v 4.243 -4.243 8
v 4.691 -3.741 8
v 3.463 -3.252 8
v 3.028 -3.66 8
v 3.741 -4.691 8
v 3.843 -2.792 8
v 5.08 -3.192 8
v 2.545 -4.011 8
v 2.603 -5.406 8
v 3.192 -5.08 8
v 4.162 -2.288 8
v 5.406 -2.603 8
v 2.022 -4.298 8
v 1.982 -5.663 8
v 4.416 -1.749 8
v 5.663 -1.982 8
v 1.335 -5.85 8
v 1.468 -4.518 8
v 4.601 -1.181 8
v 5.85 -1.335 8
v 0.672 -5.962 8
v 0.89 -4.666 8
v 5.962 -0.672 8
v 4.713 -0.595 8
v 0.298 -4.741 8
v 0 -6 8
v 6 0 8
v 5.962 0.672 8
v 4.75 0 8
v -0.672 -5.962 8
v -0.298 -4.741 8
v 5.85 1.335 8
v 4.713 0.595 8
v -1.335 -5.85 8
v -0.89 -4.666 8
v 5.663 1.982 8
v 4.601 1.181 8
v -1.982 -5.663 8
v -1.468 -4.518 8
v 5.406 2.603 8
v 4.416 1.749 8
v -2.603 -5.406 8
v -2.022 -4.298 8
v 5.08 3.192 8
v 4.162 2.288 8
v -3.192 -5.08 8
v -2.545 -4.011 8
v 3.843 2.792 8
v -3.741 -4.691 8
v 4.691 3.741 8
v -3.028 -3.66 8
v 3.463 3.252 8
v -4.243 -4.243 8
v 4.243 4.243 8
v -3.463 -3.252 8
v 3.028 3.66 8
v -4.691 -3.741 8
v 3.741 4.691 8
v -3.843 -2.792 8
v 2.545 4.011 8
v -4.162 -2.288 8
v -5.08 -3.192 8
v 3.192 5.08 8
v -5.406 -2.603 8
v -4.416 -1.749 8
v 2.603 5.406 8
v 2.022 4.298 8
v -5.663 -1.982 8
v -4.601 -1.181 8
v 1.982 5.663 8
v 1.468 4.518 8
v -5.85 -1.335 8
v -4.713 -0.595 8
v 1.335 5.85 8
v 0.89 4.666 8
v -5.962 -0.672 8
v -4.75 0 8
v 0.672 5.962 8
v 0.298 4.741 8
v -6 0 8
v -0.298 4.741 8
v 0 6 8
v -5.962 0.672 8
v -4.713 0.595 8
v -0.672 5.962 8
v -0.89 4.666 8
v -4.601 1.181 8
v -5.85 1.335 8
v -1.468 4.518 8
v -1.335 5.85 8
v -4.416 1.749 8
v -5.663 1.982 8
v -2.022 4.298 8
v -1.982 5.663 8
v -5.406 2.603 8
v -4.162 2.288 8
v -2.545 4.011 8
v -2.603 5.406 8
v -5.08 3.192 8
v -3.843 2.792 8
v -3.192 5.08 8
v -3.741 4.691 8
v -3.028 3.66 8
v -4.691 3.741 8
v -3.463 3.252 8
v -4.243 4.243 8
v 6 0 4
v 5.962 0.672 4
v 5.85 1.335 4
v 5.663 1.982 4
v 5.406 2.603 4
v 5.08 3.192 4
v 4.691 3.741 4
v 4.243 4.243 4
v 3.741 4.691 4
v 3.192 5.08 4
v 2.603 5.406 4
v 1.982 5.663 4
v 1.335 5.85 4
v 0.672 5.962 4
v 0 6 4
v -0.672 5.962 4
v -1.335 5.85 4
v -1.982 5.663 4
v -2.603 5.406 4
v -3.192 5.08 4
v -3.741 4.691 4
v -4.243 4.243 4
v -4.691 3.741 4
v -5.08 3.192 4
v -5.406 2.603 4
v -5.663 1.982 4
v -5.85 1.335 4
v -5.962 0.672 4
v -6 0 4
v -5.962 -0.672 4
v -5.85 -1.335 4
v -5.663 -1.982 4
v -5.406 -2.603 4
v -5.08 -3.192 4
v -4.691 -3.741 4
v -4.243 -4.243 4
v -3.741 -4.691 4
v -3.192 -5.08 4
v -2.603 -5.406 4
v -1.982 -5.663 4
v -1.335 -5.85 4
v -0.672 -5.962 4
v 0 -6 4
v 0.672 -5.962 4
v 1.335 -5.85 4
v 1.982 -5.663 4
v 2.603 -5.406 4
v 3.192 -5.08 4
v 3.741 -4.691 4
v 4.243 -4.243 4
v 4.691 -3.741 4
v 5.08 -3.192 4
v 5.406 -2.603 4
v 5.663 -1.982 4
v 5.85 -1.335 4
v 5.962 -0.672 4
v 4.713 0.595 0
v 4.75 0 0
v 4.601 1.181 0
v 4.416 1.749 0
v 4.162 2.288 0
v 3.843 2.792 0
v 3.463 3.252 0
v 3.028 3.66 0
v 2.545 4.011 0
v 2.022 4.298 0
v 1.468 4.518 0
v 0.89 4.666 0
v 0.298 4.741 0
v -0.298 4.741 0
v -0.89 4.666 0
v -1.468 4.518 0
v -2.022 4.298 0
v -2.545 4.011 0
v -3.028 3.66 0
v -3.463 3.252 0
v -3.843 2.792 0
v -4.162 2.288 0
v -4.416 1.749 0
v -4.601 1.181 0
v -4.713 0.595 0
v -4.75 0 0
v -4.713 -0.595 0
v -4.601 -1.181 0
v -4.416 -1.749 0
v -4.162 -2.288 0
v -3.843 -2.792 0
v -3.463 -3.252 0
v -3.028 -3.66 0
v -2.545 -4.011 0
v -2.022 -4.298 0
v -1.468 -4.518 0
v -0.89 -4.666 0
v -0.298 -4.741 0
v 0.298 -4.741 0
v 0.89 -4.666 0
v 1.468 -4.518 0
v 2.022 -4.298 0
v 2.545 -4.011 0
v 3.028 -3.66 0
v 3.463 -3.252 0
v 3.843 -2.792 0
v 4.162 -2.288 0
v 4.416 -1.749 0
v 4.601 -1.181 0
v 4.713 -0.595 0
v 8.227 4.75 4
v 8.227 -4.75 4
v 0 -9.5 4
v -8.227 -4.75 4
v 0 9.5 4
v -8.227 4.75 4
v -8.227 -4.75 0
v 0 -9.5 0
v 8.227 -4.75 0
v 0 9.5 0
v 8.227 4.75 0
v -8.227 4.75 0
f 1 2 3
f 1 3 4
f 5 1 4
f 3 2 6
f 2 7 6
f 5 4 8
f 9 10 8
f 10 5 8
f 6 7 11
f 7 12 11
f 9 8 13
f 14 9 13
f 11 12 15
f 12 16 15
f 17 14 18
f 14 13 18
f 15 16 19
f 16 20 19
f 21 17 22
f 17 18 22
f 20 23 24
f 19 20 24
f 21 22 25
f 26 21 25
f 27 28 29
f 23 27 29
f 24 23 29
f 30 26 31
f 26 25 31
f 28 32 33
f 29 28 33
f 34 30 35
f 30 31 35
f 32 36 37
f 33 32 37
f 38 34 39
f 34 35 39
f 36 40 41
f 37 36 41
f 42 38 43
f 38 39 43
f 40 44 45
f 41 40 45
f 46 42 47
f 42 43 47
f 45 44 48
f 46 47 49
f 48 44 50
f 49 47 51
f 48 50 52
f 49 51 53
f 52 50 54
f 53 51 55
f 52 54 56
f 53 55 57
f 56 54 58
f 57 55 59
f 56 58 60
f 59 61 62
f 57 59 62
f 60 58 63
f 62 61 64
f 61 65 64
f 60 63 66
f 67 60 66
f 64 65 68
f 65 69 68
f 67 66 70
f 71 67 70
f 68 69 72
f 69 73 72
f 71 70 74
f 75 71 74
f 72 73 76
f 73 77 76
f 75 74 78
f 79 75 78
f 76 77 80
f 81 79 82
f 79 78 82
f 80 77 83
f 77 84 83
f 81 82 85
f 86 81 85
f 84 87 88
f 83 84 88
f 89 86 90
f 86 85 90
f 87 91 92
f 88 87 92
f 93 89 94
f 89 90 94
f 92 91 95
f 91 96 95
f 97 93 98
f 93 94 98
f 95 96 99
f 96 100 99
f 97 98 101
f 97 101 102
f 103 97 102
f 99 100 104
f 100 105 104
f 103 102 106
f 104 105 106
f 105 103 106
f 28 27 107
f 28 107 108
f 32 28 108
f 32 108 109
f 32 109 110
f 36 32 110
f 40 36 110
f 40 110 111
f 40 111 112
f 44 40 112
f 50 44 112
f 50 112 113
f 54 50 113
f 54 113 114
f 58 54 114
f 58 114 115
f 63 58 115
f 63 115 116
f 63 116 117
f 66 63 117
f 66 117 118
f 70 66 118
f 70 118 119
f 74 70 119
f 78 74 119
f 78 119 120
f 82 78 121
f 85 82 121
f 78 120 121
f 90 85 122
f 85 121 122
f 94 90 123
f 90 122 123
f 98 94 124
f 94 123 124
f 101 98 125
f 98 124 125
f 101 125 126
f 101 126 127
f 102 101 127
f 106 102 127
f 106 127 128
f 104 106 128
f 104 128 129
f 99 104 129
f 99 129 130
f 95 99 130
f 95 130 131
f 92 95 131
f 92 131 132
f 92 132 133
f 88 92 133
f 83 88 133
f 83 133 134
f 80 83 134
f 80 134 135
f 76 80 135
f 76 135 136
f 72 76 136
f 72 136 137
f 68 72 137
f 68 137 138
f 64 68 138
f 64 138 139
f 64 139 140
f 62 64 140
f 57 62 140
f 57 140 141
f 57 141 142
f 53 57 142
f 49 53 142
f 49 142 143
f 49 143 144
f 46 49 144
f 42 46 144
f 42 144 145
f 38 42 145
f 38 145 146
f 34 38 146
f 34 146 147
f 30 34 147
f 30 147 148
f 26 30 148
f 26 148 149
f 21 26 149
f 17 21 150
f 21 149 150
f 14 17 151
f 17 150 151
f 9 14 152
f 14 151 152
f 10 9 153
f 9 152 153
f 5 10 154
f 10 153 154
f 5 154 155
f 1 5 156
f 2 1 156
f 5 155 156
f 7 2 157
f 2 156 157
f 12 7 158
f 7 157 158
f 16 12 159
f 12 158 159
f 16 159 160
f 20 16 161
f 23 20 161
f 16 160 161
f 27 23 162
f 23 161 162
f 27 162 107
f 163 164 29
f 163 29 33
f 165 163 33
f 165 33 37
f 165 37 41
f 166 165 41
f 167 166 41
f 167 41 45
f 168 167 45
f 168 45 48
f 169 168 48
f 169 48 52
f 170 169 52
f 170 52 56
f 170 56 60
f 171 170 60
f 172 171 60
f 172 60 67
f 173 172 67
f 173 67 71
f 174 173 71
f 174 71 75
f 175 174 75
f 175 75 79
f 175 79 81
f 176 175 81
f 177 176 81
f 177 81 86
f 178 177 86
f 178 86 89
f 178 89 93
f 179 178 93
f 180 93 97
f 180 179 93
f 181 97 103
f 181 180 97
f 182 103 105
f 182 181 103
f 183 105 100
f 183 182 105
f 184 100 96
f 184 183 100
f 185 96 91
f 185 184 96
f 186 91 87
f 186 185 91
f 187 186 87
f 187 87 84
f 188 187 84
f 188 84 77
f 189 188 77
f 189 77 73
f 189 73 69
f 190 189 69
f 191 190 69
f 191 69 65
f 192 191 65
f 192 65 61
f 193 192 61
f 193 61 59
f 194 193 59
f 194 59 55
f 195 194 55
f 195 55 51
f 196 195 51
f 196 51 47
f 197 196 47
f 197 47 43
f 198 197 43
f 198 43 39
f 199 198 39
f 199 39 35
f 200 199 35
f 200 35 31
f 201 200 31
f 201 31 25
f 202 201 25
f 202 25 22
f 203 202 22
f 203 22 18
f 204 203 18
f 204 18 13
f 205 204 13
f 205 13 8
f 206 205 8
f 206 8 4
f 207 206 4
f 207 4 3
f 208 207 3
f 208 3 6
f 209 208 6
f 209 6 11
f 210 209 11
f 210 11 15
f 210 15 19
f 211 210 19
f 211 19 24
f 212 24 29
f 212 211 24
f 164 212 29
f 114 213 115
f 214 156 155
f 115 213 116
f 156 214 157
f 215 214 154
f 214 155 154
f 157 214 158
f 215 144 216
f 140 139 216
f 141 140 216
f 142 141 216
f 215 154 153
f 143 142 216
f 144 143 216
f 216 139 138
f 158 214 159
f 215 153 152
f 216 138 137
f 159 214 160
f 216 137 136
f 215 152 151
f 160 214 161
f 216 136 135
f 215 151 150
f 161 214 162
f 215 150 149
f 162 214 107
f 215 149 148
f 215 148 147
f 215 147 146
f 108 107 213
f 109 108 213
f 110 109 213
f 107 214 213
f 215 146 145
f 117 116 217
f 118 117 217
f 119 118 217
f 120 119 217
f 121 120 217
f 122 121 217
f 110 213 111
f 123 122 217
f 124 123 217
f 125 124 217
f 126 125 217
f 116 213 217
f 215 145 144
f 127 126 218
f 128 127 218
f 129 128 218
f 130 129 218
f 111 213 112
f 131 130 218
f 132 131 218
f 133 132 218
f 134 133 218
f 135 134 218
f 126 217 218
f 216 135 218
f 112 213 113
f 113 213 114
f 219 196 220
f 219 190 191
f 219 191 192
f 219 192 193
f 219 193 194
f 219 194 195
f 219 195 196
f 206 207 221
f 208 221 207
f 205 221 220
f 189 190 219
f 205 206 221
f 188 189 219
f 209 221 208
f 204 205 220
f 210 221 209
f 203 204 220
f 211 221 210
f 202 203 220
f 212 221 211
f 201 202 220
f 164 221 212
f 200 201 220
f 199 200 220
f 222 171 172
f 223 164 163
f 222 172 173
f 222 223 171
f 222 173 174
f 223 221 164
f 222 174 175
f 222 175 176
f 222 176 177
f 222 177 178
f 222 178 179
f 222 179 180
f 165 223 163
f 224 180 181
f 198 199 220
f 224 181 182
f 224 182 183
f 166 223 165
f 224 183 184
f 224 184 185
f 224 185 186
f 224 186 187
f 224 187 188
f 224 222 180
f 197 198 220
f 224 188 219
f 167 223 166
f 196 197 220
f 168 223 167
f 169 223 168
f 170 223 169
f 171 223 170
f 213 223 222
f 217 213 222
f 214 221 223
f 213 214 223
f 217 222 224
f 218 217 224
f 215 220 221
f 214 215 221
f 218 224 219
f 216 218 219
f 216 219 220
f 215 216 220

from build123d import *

# Parameters (mm, degrees)
SKETCH003_R  = 4.75
PAD002_DEPTH = 8
PAD001_DEPTH = 4
SKETCH_R     = 6
PAD_DEPTH    = 4


with BuildPart() as trou:
    # Sketch003 → Pad002 (new body)
    with BuildSketch(Plane.XY):
        Circle(SKETCH003_R)
    extrude(amount=PAD002_DEPTH)


with BuildPart() as cylindre:
    # Sketch002 → Pad001 (new body)
    with BuildSketch(Plane.XY):
        Polygon((8.227241, 4.75), (0, 9.5), (-8.227241, 4.75), (-8.227241, -4.75), (0, -9.5), (8.227241, -4.75), align=None)
    extrude(amount=PAD001_DEPTH)


with BuildPart() as cut:
    # Sketch → Pad (new body)
    with BuildSketch(Plane.XY.offset(4)):
        Circle(SKETCH_R)
    extrude(amount=PAD_DEPTH)

    # Fusion: union cylindre
    add(cylindre.part)

    # Cut: cut trou
    add(trou.part, mode=Mode.SUBTRACT)


solid = cut.part
